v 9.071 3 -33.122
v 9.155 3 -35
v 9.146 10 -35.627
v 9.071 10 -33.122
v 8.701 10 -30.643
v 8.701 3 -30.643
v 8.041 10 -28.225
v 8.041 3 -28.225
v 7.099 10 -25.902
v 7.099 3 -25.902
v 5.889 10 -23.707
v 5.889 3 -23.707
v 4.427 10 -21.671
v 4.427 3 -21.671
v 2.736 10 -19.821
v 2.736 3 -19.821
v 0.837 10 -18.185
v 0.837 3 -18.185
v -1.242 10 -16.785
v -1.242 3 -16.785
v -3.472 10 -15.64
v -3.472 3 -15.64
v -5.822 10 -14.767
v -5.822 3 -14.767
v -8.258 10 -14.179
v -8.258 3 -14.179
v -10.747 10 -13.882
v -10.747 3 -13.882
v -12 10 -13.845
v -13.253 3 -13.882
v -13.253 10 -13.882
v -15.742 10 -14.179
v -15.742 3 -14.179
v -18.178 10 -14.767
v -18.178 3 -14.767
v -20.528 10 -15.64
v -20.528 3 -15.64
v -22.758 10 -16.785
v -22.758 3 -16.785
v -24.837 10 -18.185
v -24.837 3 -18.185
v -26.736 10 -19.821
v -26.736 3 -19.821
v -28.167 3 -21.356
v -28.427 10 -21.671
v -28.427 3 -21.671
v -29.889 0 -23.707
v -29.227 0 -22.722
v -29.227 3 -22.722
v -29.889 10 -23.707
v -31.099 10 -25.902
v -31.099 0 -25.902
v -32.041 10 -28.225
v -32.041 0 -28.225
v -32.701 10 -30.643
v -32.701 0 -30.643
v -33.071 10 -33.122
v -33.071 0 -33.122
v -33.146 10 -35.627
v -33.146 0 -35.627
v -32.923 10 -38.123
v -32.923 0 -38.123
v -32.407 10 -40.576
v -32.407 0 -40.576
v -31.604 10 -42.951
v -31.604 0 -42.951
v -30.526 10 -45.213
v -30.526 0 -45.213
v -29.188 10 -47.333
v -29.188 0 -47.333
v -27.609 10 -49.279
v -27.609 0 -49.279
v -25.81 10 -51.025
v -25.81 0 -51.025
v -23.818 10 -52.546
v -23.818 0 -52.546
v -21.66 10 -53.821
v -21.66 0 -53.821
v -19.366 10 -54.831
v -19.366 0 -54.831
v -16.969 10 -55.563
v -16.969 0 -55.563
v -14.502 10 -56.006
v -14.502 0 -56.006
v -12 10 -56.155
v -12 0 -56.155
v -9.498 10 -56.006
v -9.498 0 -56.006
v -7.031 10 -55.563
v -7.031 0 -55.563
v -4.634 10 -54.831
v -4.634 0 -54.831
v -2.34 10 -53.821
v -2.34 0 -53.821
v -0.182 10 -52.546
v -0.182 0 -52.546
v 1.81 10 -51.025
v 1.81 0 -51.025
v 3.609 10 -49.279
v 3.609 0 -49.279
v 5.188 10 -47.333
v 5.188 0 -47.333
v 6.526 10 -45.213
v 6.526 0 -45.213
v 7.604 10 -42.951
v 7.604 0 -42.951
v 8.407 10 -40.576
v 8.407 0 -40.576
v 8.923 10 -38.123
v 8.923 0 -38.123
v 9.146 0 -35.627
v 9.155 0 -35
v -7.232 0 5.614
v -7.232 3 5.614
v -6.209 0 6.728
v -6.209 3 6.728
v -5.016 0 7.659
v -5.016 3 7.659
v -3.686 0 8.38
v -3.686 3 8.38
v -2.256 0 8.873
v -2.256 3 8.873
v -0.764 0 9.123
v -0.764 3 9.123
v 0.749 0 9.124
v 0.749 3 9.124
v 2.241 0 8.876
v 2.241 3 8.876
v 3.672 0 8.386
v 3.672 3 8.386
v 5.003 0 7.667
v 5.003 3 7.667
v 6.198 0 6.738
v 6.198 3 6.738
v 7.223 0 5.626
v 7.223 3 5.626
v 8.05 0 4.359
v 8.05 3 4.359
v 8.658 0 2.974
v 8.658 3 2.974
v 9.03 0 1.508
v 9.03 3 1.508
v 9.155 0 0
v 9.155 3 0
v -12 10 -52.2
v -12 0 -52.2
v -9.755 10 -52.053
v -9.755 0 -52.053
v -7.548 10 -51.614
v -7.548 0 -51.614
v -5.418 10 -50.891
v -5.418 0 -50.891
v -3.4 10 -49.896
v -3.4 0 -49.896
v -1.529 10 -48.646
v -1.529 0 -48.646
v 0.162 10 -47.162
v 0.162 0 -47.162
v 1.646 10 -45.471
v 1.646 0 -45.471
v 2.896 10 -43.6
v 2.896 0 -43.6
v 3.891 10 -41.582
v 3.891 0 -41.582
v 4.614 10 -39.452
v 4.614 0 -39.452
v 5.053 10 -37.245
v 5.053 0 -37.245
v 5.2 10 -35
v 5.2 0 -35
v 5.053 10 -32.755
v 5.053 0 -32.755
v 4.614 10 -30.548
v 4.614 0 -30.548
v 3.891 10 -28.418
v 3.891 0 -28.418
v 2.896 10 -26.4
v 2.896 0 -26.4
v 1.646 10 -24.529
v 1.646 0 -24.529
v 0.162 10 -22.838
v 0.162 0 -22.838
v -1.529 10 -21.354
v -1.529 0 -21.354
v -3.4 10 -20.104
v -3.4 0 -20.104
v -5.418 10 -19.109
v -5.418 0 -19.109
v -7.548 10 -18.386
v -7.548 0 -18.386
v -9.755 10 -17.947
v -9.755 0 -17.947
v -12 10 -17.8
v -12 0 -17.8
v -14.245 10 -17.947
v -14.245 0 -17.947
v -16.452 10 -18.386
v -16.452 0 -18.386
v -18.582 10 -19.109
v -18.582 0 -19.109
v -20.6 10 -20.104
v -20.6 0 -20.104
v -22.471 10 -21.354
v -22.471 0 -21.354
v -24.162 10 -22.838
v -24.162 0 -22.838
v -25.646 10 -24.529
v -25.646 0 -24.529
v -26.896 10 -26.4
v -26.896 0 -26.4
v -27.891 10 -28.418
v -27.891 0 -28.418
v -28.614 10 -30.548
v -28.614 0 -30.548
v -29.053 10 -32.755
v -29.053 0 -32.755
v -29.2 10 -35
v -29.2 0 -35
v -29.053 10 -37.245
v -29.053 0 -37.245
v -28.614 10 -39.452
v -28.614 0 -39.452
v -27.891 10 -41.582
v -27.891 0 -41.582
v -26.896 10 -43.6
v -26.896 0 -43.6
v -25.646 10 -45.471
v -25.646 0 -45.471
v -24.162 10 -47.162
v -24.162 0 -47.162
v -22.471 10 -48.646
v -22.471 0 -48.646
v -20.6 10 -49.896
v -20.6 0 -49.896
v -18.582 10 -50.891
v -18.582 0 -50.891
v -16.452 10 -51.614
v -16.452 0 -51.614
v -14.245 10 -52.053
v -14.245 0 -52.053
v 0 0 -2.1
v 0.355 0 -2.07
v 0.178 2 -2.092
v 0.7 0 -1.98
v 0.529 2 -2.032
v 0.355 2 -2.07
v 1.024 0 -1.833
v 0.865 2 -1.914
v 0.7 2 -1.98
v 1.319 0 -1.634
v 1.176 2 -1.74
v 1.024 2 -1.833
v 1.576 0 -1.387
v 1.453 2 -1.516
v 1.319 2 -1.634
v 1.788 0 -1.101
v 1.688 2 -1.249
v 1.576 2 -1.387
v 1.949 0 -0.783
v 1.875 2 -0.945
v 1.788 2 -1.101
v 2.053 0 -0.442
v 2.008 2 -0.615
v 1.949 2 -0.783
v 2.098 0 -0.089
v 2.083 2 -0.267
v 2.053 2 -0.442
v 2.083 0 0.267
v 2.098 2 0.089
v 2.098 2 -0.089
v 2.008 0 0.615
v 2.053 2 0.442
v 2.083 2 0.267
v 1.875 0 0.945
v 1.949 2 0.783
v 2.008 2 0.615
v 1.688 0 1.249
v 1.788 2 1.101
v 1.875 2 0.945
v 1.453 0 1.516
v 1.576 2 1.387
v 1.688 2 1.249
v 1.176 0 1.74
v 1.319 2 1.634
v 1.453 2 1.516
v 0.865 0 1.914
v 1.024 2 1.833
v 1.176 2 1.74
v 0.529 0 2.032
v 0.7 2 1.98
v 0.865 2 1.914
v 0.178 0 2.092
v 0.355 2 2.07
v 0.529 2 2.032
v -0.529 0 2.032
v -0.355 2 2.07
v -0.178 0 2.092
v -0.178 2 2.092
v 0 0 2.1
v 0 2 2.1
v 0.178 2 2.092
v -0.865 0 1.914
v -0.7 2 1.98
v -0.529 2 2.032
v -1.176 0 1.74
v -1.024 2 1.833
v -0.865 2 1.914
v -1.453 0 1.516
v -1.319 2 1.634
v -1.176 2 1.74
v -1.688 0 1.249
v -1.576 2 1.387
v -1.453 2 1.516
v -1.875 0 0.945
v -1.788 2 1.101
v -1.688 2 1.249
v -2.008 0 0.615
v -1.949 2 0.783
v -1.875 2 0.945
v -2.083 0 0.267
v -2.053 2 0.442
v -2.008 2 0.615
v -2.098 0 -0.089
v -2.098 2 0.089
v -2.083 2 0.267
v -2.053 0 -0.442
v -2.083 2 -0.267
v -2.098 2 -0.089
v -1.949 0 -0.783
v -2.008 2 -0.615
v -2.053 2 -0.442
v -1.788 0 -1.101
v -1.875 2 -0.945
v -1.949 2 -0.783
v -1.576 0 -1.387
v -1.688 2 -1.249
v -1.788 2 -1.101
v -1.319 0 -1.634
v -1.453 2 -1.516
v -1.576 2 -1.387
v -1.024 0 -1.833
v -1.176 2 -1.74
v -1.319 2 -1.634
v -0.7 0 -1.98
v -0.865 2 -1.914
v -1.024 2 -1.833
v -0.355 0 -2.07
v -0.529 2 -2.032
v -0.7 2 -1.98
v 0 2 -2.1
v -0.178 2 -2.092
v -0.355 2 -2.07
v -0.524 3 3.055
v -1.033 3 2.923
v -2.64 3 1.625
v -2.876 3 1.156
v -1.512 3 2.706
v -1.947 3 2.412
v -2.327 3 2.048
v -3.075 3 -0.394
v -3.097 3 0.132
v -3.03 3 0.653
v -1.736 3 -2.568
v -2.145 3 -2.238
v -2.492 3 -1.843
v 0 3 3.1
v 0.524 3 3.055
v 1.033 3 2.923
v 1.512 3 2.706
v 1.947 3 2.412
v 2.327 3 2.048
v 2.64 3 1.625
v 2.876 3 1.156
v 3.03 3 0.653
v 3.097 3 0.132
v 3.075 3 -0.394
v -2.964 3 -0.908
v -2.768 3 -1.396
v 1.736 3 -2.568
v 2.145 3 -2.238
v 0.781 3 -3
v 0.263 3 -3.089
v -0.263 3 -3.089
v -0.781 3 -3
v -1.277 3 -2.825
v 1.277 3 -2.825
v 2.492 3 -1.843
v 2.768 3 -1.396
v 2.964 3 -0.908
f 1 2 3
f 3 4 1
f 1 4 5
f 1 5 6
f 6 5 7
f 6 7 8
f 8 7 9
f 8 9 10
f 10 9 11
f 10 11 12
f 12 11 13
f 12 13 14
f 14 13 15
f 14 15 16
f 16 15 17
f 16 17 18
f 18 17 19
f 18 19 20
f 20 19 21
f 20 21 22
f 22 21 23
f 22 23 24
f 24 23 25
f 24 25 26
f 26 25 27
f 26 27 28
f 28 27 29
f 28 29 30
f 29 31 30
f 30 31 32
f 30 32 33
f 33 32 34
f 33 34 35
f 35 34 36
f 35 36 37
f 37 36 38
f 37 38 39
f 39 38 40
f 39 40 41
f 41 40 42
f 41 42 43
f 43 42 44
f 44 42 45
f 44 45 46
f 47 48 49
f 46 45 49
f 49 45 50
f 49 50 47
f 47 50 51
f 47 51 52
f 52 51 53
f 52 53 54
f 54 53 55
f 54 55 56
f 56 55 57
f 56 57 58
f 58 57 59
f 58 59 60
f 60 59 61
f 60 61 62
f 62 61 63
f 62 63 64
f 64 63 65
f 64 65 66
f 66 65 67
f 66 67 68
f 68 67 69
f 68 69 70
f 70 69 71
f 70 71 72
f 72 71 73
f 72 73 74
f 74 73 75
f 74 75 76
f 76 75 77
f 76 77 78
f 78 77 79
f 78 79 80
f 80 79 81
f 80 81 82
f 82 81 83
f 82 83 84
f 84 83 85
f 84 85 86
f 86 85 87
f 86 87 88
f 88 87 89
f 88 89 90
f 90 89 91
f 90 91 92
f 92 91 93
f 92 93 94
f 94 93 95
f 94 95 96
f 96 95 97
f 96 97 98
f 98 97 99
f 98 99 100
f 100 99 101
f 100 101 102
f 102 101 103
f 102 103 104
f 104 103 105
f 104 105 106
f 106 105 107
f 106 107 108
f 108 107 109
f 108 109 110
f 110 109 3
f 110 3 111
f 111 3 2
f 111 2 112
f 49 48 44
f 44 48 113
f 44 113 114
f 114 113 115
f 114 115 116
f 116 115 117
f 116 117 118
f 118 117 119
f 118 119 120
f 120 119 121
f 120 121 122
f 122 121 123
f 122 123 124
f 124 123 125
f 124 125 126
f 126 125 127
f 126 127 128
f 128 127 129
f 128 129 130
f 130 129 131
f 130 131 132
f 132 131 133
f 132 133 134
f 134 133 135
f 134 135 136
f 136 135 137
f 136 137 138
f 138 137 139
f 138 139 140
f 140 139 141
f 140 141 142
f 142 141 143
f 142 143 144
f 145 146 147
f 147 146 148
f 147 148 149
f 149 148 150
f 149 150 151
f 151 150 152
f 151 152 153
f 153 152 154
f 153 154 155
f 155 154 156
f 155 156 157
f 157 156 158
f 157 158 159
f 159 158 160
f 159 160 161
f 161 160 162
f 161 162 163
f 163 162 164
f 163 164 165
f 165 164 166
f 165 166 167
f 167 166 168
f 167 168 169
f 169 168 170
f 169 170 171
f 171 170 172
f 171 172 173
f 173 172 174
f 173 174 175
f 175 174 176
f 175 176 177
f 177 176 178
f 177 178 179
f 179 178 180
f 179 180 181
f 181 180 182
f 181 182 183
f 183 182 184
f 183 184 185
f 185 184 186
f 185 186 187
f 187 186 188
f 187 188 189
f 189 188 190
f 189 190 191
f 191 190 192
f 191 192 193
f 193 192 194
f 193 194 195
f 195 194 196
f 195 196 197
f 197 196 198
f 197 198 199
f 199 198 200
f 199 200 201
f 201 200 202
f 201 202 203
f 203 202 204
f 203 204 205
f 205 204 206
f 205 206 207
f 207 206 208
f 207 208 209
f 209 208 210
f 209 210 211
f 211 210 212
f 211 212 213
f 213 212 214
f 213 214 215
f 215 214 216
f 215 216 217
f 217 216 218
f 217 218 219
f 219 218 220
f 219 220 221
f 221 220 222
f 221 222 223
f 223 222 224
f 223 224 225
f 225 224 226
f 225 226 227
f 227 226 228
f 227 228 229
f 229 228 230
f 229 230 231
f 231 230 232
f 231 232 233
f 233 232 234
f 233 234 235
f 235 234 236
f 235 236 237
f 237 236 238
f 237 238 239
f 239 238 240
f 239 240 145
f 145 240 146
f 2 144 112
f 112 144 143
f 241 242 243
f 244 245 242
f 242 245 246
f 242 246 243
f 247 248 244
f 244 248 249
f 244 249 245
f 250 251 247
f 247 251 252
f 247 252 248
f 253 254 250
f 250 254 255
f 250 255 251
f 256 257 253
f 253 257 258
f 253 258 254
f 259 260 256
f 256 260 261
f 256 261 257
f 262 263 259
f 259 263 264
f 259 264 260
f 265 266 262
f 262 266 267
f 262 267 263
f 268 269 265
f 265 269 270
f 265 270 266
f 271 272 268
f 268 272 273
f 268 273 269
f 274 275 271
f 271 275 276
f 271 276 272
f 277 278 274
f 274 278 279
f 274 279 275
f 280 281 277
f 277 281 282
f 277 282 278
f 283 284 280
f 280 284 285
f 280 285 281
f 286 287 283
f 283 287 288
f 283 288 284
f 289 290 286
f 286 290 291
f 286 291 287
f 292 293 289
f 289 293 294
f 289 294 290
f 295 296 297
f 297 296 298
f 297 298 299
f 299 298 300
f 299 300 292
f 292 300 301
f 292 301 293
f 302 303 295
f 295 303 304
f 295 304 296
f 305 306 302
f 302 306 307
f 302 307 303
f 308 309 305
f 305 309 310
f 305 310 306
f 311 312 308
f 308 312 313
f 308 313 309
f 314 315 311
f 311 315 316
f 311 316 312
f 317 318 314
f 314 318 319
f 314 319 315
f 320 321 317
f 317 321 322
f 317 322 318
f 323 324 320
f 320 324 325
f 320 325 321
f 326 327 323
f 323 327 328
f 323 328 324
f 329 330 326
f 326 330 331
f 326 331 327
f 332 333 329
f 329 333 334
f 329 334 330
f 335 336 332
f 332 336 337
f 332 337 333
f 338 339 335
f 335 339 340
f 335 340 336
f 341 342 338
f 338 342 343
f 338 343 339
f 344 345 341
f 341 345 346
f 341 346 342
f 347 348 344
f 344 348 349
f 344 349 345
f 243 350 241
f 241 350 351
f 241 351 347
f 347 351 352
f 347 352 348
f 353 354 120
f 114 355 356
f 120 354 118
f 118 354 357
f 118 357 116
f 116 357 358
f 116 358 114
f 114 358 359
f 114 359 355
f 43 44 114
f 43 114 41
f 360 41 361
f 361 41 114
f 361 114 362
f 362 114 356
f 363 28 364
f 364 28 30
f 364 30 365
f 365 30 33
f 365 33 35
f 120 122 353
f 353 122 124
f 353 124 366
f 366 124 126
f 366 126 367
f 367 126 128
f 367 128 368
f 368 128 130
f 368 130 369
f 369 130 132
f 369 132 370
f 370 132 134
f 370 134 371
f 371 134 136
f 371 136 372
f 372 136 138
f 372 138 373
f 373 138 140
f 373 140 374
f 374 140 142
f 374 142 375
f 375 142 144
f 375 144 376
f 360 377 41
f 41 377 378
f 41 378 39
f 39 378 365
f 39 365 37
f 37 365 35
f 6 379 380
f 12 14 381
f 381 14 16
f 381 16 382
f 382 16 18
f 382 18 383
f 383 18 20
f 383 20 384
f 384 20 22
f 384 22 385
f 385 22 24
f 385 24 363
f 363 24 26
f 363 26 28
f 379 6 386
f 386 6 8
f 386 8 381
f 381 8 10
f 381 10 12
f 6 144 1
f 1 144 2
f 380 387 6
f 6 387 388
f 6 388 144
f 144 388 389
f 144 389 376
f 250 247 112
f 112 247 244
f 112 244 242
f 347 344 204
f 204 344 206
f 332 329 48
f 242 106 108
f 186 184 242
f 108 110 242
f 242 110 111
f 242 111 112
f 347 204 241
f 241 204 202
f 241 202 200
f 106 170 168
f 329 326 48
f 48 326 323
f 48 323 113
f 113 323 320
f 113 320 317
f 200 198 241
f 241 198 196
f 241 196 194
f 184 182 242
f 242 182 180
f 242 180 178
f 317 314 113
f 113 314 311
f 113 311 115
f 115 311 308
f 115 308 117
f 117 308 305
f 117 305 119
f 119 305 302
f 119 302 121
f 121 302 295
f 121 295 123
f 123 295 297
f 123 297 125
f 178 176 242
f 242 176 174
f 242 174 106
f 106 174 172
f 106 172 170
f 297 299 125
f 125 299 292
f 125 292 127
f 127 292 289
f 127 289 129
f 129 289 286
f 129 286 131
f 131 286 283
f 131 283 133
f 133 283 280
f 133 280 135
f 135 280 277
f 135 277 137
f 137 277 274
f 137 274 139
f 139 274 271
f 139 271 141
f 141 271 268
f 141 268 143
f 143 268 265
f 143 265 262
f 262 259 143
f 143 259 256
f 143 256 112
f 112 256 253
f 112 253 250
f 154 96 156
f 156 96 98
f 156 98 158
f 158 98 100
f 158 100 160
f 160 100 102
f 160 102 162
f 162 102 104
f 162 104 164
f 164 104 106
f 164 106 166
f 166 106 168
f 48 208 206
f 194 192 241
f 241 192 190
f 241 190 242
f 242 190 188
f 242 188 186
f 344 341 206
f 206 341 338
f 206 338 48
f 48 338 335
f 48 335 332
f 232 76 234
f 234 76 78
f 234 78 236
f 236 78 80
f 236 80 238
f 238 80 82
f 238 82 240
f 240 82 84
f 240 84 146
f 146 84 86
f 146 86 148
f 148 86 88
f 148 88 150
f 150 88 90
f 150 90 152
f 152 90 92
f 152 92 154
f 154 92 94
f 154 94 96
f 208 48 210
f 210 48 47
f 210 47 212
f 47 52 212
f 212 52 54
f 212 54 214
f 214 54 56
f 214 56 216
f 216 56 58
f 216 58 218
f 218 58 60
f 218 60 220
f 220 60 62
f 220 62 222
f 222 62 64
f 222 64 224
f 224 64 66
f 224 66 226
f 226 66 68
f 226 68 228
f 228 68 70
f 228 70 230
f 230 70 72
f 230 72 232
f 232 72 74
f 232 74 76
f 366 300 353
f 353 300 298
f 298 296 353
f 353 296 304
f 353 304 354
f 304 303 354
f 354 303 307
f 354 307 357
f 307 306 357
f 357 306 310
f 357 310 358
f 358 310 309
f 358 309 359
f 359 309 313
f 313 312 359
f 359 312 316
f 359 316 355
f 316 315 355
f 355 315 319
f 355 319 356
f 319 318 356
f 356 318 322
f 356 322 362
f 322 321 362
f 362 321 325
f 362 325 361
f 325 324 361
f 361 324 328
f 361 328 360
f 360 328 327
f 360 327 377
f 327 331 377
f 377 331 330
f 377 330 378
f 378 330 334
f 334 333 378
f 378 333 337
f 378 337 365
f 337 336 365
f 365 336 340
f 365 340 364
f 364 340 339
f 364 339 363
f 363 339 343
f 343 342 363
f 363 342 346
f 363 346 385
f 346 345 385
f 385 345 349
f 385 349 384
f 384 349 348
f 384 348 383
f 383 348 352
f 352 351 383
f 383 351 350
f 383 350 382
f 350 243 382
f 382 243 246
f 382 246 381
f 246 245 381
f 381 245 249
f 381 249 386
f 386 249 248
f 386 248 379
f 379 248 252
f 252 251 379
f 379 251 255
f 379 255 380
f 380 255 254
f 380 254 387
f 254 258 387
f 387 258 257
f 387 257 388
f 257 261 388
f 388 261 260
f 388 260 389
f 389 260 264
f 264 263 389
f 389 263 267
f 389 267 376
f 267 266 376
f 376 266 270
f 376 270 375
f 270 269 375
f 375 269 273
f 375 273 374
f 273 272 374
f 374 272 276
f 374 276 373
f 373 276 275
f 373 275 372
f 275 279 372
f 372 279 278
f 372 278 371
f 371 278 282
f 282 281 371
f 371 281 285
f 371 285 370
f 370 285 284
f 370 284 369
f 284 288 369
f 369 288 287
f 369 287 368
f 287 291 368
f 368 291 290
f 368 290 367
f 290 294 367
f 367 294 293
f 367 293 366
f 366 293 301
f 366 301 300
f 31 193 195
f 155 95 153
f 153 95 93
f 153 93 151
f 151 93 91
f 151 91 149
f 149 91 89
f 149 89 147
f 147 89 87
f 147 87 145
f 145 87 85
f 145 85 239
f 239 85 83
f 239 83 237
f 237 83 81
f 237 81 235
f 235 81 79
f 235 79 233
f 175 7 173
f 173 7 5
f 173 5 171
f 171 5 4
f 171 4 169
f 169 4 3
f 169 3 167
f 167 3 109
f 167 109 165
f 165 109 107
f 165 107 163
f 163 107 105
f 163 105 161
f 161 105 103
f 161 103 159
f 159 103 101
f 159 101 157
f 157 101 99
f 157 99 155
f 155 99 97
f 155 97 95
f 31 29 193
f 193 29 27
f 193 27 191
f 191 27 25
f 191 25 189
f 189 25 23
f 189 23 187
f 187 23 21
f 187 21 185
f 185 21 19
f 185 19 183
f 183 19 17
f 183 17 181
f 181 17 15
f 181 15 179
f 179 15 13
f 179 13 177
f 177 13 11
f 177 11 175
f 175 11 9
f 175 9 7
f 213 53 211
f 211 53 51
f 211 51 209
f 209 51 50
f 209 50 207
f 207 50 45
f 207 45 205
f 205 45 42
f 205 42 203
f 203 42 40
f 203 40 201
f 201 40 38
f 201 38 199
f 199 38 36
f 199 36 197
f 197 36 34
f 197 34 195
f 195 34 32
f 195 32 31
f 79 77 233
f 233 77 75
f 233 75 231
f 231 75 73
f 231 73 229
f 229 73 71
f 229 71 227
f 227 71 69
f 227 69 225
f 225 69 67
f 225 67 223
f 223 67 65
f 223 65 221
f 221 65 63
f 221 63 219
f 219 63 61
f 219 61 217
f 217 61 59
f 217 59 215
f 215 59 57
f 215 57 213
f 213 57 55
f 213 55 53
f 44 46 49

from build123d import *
from build123d.topology import SkipClean

# Parameters (mm, degrees)
SKETCH1_R           = 17.2
SKETCH1_R_2         = 2.1
BOSS_EXTRUDE1_DEPTH = 3
CHAMFER1_SIZE       = 1
SKETCH2_R           = 21.154971589
SKETCH2_R_2         = 17.2
BOSS_EXTRUDE2_DEPTH = 7


with BuildPart() as part:
    # Sketch1 → Boss-Extrude1 (new body)
    with BuildSketch(Plane(origin=(0, 0, 0), x_dir=(1, 0, 0), z_dir=(0, 1, 0))):
        with BuildLine():
            ThreePointArc((-29.22705293, 22.721503746), (-18.44573532, 55.149077376), (9.154971589, 35))
            Line((9.154971589, 35), (9.154971589, 0))
            ThreePointArc((9.154971589, 0), (2.966995431, -8.660856938), (-7.231849971, -5.613719871))
            Line((-7.231849971, -5.613719871), (-29.22705293, 22.721503746))
        make_face()
        with Locations(Location((-12, 35, 0), (0, 0, 270))):
            Circle(SKETCH1_R, mode=Mode.SUBTRACT)
        with Locations(Location((0, 0, 0), (0, 0, 270))):
            Circle(SKETCH1_R_2, mode=Mode.SUBTRACT)
    extrude(amount=BOSS_EXTRUDE1_DEPTH)

    # Chamfer1
    chamfer1_edges = [part.edges().sort_by_distance(p)[0] for p in [
        (0, 3, -2.1),
    ]]
    chamfer(chamfer1_edges, length=CHAMFER1_SIZE)

    # Sketch2 → Boss-Extrude2 (add)
    with SkipClean():  # the faces are left unmerged after this step: merging them gives an invalid solid
        with BuildSketch(Plane(origin=(0, 3, 0), x_dir=(1, 0, 0), z_dir=(0, 1, 0))):
            with Locations((-12, 35)):
                Circle(SKETCH2_R)
            with Locations(Location((-12, 35, 0), (0, 0, 270))):
                Circle(SKETCH2_R_2, mode=Mode.SUBTRACT)
        extrude(amount=BOSS_EXTRUDE2_DEPTH)


solid = part.part
